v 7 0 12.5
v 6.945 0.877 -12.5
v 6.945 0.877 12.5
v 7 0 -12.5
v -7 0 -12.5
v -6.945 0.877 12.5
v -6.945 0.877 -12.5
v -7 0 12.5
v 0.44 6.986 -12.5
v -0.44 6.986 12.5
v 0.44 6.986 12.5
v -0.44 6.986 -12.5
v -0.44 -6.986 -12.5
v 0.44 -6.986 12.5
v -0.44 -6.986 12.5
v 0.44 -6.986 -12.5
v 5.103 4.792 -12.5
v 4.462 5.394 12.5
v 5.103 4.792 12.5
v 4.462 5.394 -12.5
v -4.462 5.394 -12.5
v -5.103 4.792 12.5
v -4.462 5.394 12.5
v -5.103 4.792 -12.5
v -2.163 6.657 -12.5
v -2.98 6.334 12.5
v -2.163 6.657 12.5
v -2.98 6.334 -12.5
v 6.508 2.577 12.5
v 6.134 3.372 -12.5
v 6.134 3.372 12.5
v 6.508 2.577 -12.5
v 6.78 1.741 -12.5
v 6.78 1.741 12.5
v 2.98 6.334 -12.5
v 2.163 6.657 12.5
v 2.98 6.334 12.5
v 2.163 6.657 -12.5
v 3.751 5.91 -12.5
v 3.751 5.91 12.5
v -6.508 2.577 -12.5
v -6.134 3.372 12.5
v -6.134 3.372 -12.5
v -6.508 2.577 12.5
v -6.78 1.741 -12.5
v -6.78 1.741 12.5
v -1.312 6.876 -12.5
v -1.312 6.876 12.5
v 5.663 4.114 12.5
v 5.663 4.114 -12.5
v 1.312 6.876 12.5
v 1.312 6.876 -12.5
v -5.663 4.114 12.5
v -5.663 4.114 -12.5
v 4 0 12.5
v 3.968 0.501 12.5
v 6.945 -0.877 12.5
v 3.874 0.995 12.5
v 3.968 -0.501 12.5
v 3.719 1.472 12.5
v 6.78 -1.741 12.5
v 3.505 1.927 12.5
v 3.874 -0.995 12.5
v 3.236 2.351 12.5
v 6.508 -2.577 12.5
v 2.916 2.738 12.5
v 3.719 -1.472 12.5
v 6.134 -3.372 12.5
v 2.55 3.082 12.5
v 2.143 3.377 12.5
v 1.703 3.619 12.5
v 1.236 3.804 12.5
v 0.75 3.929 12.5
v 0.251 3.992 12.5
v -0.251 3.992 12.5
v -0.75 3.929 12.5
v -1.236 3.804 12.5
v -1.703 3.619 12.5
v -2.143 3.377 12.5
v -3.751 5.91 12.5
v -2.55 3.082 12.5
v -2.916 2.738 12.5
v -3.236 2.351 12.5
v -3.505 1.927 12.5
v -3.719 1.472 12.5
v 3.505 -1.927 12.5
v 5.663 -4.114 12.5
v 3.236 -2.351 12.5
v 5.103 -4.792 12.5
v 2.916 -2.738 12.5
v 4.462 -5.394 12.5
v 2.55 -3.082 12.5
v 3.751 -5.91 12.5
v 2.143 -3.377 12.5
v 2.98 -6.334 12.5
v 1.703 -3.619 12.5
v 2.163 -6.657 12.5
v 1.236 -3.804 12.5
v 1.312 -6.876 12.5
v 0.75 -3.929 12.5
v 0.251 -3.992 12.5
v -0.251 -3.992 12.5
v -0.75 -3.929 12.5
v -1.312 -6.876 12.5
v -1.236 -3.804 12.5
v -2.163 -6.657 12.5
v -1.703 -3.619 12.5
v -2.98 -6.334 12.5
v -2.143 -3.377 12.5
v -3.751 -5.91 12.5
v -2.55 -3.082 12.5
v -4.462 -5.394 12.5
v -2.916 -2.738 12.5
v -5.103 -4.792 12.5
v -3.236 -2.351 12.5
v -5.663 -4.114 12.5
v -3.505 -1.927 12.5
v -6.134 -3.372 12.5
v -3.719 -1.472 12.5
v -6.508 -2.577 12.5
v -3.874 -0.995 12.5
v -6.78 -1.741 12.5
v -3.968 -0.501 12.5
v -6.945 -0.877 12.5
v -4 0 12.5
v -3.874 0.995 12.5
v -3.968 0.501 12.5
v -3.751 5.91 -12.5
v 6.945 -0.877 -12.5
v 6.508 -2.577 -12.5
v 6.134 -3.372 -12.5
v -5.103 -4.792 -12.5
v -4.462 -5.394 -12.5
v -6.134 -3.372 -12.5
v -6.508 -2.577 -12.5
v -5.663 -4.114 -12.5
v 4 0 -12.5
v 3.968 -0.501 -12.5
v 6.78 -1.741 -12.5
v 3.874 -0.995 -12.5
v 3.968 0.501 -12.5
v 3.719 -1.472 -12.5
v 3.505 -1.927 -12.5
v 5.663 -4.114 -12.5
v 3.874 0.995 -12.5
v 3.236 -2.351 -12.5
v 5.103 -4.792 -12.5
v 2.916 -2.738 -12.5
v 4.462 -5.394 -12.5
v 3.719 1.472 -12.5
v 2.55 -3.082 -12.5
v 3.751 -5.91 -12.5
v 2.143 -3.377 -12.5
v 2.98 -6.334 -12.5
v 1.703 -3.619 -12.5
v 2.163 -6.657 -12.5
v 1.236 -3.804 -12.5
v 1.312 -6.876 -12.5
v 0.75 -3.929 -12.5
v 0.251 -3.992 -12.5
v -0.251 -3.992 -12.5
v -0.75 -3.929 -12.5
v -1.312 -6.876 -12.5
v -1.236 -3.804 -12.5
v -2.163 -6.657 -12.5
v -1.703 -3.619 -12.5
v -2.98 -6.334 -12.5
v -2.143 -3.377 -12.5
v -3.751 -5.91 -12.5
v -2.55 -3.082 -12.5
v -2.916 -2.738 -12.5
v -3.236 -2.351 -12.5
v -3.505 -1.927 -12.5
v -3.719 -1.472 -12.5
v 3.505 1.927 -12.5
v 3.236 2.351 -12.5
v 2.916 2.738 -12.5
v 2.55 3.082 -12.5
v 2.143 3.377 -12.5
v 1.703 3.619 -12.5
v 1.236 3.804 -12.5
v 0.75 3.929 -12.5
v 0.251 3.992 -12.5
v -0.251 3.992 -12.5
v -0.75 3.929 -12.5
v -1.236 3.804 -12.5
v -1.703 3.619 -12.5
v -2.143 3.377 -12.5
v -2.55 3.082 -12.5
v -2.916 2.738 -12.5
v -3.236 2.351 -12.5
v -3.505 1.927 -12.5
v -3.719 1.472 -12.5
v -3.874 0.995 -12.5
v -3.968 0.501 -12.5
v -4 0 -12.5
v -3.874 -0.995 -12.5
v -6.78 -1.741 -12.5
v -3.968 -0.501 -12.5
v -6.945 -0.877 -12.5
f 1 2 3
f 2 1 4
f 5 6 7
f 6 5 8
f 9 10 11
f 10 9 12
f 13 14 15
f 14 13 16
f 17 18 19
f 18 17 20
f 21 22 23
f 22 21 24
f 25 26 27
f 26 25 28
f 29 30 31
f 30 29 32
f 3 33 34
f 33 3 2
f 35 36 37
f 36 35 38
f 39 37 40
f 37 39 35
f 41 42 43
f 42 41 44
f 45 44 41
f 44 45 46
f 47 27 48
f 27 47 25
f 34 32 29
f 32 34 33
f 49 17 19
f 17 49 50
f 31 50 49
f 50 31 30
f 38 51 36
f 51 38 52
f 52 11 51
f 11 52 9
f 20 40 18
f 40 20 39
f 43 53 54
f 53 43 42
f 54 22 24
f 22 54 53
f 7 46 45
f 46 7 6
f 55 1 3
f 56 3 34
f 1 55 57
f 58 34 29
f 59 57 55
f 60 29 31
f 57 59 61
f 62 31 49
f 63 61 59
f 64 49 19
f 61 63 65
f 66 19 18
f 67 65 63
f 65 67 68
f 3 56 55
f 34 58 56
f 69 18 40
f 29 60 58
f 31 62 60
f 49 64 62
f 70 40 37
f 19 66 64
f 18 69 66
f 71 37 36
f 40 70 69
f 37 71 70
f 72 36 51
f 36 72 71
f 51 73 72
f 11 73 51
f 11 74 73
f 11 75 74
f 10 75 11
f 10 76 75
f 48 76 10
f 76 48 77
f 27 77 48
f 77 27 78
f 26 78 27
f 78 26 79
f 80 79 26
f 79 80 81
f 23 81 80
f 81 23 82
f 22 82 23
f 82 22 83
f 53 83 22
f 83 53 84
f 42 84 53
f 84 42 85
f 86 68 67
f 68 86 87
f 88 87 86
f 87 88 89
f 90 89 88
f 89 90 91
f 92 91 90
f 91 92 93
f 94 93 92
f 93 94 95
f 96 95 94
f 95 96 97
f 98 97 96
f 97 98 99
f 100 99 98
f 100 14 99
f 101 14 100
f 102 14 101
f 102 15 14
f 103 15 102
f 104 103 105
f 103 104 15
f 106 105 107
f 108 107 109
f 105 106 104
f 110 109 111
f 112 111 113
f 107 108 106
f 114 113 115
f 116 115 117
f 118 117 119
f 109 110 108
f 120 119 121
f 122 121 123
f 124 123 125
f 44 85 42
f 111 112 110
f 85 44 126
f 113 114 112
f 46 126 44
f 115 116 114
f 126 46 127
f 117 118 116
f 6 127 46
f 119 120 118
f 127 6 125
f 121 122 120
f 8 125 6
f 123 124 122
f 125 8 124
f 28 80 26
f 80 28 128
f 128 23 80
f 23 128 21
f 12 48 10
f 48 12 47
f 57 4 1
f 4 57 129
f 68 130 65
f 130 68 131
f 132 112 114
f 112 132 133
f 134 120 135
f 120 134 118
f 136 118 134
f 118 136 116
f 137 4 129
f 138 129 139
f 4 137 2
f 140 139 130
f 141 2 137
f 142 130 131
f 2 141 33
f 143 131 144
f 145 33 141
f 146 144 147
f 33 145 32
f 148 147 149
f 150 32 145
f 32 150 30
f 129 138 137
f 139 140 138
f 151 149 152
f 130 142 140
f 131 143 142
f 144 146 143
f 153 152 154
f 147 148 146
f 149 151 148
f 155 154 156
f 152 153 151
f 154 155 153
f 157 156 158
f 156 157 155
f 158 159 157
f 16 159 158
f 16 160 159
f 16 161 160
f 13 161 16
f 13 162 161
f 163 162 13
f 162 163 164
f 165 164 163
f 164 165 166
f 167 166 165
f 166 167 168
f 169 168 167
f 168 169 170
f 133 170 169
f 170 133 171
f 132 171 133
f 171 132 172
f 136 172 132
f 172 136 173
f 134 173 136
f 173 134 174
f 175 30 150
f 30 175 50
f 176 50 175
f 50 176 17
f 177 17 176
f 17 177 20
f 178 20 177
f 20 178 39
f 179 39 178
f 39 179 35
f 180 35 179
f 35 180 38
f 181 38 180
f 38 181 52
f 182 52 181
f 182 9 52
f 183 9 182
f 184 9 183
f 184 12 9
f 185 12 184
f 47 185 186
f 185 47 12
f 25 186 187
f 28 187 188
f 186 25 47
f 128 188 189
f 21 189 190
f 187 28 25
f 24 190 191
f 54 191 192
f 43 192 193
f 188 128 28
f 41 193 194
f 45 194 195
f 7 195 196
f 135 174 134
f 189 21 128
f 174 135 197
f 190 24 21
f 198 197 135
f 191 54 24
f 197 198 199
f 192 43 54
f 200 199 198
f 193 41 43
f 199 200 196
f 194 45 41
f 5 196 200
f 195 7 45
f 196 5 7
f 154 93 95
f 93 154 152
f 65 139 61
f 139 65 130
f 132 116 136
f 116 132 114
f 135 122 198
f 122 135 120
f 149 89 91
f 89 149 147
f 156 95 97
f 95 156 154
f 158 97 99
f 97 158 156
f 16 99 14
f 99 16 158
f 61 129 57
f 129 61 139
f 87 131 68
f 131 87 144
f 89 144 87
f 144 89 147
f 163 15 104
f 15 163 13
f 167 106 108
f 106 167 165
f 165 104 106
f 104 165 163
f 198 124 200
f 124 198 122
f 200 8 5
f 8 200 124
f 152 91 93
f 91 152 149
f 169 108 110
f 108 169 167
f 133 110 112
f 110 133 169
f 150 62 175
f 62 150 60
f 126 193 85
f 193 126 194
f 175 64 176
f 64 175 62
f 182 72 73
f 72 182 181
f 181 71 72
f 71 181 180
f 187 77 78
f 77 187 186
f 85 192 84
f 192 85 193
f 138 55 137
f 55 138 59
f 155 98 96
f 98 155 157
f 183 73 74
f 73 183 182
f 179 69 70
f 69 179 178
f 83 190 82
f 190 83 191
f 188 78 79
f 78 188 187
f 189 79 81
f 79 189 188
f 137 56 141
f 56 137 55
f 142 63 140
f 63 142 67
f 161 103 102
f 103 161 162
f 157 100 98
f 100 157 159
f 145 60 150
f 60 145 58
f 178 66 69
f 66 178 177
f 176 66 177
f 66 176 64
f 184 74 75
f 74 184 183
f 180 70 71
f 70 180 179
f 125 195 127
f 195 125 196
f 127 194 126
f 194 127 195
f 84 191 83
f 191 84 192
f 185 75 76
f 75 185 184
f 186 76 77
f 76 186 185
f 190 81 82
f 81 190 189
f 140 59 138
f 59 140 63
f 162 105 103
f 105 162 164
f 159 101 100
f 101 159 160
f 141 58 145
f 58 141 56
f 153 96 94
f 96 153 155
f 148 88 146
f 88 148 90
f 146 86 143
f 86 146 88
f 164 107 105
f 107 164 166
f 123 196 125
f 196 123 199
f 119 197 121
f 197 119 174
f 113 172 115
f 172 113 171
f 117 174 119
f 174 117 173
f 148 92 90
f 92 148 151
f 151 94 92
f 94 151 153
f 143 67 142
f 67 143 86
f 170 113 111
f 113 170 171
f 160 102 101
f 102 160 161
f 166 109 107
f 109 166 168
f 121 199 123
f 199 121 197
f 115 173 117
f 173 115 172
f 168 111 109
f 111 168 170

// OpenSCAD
$fn = 50;


difference() {
	union() {
		translate(v = [0, 0, -12.5000000000]) {
			cylinder(h = 25, r = 7.0000000000);
		}
	}
	union() {
		translate(v = [0, 0, -100.0000000000]) {
			cylinder(h = 200, r = 4);
		}
	}
}
